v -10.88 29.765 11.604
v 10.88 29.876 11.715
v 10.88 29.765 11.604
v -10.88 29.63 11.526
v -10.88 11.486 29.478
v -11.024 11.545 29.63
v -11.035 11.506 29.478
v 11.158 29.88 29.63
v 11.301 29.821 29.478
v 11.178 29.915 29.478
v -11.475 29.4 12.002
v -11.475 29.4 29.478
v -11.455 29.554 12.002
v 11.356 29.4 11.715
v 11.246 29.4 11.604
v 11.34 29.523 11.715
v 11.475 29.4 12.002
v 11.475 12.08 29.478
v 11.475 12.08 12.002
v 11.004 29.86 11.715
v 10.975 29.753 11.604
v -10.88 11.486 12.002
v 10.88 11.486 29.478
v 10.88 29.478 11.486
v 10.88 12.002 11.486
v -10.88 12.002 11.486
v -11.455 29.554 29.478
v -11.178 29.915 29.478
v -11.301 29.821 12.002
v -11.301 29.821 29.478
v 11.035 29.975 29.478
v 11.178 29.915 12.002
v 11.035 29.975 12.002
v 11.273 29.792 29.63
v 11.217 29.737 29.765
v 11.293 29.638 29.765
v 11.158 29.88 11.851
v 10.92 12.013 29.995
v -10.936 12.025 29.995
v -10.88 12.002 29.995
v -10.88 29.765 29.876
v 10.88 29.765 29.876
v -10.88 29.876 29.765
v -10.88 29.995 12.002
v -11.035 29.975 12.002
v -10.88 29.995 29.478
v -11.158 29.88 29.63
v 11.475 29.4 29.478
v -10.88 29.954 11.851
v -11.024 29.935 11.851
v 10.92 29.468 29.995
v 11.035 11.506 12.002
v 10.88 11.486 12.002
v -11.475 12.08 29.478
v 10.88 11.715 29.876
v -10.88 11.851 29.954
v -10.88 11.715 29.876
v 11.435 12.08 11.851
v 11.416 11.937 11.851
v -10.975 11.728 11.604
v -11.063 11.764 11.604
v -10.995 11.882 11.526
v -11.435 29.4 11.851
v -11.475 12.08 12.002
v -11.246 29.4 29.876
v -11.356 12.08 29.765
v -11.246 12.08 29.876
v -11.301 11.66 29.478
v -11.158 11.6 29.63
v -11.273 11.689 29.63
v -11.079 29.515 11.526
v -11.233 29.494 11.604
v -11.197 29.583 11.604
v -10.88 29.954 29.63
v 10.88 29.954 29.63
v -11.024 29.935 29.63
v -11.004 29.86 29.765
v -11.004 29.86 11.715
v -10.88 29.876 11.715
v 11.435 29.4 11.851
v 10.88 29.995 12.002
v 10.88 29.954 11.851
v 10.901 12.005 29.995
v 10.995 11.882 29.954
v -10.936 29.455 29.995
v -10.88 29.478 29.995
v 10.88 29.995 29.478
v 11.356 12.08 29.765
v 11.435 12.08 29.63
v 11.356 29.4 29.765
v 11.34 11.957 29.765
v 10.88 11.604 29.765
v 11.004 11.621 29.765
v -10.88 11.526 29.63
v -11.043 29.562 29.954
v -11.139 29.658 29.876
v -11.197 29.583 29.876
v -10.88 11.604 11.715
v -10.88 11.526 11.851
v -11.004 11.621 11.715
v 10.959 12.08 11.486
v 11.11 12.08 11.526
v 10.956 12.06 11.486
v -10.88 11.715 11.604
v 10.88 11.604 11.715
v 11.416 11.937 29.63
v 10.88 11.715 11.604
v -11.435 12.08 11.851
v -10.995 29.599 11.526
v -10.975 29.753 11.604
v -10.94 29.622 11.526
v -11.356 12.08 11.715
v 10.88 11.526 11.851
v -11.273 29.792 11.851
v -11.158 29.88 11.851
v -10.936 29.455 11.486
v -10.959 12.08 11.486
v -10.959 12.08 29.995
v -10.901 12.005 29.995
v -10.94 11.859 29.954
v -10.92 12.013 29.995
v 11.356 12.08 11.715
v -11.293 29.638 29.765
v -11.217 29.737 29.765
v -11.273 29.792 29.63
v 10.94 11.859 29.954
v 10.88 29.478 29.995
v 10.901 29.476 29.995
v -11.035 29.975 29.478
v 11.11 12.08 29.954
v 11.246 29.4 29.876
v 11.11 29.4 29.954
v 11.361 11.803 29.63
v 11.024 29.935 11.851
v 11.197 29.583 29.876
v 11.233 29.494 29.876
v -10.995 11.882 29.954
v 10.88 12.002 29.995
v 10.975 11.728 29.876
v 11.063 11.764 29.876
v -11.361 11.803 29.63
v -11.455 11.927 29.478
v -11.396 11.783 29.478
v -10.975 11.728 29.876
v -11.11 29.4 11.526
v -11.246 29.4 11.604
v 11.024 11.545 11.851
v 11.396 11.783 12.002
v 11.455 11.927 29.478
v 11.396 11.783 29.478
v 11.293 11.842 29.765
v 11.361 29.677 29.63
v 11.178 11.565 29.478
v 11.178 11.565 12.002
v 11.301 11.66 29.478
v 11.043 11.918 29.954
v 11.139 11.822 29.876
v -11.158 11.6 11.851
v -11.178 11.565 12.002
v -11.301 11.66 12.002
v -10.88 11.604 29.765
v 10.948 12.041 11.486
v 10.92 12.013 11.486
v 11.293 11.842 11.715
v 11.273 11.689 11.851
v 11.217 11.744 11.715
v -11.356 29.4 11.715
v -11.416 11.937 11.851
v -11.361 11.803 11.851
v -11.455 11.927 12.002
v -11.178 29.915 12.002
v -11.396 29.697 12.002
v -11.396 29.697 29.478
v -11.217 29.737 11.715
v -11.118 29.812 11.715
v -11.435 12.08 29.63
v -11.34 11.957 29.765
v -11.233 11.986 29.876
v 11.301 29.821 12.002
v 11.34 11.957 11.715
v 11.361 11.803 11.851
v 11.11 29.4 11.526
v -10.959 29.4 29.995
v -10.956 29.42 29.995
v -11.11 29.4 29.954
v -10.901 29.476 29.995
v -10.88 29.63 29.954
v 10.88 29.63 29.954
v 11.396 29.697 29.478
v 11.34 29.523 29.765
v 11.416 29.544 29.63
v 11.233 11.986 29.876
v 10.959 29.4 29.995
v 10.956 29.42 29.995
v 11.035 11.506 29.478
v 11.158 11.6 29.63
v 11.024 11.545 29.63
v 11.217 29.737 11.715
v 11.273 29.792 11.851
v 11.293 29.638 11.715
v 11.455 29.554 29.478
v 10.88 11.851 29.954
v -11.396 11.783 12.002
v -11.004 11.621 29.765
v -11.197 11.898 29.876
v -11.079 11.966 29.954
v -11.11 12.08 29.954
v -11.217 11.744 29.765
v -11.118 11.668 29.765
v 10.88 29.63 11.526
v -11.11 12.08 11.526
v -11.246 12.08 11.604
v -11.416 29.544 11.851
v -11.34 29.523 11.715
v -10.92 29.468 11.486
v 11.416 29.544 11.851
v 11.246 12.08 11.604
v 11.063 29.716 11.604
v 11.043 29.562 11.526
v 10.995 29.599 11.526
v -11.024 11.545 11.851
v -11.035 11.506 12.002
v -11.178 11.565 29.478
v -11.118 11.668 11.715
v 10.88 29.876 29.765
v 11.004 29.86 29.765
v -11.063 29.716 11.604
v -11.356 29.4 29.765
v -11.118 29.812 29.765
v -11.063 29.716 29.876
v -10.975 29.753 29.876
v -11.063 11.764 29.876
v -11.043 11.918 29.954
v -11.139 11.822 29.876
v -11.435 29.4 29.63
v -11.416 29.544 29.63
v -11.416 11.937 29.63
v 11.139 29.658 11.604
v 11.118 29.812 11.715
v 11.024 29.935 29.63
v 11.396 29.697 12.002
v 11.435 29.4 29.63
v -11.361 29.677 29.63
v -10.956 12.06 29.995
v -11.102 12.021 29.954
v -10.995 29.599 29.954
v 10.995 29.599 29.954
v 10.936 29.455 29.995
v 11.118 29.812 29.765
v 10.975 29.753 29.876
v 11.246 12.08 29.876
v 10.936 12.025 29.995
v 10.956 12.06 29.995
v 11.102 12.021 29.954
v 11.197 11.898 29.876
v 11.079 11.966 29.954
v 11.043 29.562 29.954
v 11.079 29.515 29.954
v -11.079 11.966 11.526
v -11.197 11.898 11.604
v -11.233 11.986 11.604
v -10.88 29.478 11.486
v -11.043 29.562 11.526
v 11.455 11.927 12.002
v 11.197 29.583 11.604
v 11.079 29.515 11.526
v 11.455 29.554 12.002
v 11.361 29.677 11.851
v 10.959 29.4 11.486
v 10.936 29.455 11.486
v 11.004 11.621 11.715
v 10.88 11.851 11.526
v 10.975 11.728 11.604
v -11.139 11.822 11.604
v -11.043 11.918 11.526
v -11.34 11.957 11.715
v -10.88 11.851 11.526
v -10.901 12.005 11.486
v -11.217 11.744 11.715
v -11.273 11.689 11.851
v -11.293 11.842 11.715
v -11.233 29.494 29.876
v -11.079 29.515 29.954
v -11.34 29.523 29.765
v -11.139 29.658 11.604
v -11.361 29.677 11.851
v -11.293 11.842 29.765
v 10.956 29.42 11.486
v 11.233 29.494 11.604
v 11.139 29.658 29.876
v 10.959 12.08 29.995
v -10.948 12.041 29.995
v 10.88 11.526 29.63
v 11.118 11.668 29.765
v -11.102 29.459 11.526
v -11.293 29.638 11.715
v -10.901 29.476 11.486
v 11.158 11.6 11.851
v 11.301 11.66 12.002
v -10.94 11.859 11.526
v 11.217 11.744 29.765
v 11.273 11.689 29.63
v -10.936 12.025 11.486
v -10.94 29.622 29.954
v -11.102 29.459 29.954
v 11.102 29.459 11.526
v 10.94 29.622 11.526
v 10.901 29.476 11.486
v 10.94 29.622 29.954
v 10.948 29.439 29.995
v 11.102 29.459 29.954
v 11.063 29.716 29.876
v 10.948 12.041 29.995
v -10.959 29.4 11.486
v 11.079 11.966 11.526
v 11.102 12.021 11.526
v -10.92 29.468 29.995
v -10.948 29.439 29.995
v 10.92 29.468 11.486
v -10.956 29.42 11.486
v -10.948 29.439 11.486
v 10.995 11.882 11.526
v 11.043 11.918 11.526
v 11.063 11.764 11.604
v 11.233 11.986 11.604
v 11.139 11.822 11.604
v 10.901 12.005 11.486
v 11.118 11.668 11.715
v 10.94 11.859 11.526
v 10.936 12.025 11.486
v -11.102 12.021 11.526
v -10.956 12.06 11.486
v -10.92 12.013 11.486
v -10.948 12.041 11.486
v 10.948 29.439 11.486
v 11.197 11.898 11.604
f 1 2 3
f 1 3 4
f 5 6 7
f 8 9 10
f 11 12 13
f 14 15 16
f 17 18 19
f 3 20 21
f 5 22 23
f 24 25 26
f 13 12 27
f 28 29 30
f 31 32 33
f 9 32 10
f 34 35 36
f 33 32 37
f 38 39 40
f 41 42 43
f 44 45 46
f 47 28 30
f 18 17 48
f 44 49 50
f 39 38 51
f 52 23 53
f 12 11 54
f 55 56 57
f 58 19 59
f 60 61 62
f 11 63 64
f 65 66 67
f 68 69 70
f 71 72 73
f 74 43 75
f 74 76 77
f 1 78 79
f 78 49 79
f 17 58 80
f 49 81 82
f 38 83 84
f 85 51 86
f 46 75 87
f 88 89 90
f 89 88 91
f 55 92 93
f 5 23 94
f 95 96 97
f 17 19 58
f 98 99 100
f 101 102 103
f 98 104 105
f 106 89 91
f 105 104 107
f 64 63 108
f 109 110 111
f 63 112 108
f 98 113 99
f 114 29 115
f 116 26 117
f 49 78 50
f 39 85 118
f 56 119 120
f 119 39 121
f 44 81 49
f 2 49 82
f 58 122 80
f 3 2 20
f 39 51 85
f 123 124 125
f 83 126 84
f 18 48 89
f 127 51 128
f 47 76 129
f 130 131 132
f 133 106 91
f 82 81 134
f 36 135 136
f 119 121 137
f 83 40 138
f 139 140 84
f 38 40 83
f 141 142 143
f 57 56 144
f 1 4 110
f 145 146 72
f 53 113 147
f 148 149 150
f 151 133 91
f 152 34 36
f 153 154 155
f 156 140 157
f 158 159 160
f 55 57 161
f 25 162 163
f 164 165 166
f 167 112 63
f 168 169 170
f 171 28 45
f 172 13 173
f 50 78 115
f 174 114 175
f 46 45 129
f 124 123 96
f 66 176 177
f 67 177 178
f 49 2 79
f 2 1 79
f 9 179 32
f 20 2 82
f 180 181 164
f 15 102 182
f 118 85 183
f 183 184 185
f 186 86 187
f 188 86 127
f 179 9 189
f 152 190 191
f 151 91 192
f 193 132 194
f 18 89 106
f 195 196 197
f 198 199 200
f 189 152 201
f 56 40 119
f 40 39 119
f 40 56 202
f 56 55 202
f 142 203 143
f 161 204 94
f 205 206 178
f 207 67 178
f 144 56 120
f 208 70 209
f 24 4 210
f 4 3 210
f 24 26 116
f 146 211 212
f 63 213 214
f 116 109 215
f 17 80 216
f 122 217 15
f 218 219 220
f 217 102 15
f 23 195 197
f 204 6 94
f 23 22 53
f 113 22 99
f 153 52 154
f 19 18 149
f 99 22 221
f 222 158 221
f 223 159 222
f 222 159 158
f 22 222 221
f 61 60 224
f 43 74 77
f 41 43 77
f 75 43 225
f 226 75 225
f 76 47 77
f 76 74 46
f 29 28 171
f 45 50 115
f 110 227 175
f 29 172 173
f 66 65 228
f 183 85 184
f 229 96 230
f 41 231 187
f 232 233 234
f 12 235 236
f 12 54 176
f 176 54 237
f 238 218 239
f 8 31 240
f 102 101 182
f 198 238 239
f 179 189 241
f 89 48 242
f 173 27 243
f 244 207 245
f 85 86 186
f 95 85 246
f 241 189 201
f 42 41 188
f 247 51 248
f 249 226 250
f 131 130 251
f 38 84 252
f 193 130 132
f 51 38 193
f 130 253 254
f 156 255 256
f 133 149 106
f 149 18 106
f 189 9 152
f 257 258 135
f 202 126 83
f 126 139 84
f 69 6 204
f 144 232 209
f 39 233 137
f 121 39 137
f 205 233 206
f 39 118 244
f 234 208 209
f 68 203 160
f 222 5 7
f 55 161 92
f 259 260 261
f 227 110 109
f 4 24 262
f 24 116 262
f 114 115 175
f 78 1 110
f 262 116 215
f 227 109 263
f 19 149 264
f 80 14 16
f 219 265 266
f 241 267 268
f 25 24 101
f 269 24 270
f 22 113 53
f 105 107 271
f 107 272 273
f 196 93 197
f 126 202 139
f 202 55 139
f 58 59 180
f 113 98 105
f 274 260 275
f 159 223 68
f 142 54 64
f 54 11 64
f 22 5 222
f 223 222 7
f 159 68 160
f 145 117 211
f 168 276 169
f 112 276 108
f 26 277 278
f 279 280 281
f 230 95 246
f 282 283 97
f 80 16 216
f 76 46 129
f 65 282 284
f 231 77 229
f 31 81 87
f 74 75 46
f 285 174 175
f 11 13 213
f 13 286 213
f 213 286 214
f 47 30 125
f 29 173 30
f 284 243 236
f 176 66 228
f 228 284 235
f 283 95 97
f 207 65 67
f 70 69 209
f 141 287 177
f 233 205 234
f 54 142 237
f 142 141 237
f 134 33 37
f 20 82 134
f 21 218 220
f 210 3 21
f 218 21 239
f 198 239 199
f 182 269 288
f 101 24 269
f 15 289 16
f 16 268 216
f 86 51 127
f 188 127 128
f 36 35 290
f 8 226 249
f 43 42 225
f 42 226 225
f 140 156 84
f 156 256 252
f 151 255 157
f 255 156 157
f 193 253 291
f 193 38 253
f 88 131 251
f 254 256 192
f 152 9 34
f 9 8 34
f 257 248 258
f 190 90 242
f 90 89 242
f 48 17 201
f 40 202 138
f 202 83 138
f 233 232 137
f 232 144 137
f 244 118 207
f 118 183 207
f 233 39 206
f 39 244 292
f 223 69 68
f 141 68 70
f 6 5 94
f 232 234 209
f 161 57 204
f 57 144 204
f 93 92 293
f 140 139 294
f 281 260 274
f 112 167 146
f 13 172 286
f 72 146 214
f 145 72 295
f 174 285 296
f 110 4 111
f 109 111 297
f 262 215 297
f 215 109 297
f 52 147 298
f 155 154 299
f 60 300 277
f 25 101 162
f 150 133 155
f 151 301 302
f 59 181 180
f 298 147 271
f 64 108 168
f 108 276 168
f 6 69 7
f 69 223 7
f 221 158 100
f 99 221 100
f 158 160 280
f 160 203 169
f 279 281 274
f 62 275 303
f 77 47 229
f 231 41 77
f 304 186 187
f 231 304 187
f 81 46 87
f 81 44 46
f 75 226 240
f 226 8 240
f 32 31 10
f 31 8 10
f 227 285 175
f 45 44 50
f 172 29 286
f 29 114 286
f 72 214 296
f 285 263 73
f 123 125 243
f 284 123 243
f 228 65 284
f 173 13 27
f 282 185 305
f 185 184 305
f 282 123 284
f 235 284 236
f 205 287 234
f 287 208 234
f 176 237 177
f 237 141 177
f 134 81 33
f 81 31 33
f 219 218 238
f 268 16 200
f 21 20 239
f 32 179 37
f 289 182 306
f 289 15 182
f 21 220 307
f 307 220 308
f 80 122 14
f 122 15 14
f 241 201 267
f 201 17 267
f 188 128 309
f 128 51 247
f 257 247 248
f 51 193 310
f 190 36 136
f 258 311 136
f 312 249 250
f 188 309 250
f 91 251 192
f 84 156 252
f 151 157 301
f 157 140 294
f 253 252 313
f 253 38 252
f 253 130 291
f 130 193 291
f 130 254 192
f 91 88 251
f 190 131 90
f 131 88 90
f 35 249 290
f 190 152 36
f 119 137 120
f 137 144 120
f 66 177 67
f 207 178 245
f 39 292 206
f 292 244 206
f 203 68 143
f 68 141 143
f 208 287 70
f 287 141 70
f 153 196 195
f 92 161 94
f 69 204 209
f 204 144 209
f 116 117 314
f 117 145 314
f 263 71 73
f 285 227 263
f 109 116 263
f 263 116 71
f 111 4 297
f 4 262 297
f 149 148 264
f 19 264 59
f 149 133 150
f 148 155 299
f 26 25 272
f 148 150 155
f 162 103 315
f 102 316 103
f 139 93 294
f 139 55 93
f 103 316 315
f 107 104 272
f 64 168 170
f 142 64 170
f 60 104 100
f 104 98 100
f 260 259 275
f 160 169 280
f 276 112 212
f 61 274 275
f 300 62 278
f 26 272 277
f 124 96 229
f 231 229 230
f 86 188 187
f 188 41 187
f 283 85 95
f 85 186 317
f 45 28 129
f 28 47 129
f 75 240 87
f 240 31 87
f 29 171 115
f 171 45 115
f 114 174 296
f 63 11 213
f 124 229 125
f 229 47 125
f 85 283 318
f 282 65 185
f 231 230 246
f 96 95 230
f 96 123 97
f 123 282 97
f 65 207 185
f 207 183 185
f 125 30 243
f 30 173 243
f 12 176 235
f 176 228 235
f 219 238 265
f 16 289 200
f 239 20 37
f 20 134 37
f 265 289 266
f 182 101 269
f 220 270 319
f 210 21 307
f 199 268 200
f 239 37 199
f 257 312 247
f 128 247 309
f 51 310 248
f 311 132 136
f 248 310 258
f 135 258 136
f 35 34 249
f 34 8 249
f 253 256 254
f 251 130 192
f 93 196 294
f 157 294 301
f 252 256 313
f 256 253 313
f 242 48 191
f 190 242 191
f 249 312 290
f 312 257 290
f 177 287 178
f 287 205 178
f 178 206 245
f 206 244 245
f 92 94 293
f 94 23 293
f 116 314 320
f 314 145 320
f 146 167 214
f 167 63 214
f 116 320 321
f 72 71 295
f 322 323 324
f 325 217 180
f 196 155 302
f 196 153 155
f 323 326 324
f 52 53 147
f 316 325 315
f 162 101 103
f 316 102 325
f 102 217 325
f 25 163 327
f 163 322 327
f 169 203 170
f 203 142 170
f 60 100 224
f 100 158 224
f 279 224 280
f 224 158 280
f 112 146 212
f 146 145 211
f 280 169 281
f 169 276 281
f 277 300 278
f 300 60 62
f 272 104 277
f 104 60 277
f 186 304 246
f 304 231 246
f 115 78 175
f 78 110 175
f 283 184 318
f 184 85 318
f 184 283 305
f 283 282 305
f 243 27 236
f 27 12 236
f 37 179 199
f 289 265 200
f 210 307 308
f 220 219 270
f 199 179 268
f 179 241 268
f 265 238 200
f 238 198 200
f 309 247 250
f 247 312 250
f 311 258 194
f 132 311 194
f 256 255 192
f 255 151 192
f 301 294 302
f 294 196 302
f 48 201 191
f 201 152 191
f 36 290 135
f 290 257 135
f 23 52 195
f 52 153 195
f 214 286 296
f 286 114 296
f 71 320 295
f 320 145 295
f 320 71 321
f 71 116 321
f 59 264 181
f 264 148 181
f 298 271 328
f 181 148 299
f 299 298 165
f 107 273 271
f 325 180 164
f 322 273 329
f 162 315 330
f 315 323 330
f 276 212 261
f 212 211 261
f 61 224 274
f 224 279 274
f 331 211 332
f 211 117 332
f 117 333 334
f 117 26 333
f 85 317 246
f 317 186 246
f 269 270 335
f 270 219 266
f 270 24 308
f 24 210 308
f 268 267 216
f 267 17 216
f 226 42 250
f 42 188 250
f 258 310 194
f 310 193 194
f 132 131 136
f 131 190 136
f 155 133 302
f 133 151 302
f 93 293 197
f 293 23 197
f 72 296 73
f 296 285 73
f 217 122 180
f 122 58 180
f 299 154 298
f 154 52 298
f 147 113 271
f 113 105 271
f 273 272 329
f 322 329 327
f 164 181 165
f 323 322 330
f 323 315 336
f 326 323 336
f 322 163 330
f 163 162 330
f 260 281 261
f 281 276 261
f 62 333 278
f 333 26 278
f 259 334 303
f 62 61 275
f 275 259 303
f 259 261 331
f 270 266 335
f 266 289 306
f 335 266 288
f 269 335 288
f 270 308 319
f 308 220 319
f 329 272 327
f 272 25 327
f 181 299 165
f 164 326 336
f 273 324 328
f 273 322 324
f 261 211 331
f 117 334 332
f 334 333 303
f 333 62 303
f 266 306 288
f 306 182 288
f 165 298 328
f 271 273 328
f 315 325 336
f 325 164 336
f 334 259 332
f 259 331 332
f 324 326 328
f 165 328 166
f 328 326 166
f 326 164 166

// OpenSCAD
// file: def.scad
round_radius = 0.6;
sticker_margin = 1.2;
sticker_round_radius = 0.4;
cube_size = 60;
disk_height = 12.5;
disk_radius = cube_size / 2;
base_size = cube_size / 2 / sqrt(10 + 7 * sqrt(2));
cut1_dis = base_size * (1 + sqrt(2) / 2);
cut2_dis = cube_size / 2;
inf = cube_size * 10;

module _cube() {
    cube([cube_size - round_radius * 2, cube_size - round_radius * 2, cube_size - round_radius * 2], center = true);
}

module _disk() {
    translate([0, 0, cube_size / 2 + disk_height / 2])
        cylinder(r = disk_radius - round_radius, h = disk_height - round_radius * 2, center = true, $fn = 96);
}

module _int_cut1() {
    translate([-inf, -inf, cut1_dis + round_radius])
        cube([inf * 2, inf * 2, inf]);
}

module _dif_cut1() {
    translate([-inf, -inf, cut1_dis - round_radius])
        cube([inf * 2, inf * 2, inf]);
}

module _sticker_int_cut1() {
    translate([-inf, -inf, cut1_dis + sticker_margin])
        cube([inf * 2, inf * 2, inf]);
}

module _sticker_dif_cut1() {
    translate([-inf, -inf, cut1_dis - sticker_margin])
        cube([inf * 2, inf * 2, inf]);
}

module _int_cut2() {
    translate([-inf, -inf, cut2_dis + round_radius])
        cube([inf * 2, inf * 2, inf]);
}

module _dif_cut2() {
    translate([-inf, -inf, cut2_dis - round_radius])
        cube([inf * 2, inf * 2, inf]);
}

module _sticker_int_cut2() {
    translate([-inf, -inf, cut2_dis + sticker_margin])
        cube([inf * 2, inf * 2, inf]);
}

module _sticker_dif_cut2() {
    translate([-inf, -inf, cut2_dis - sticker_margin])
        cube([inf * 2, inf * 2, inf]);
}

module _sticker_cube() {
    translate([-cube_size / 2 + sticker_margin, -cube_size / 2 + sticker_margin, cube_size / 2 - 0.05])
        cube([cube_size - sticker_margin * 2, cube_size - sticker_margin * 2, 0.1]);
}

module _sticker_disk() {
    translate([0, 0, cube_size / 2 + disk_height - 0.05])
        cylinder(r = disk_radius - sticker_margin, h = 0.1, center = true, $fn = 96);
}
// main file
include <def.scad>

module block_22() {
    minkowski() {
        difference() {
            intersection() {
                _cube();
                intersection_for (deg = [0, -90])
                    rotate([deg, 0, 0])
                        _int_cut1();
            }
            for (deg = [90, -90])
                rotate([0, deg, 0])
                    _dif_cut1();
        }
        sphere(r = round_radius, $fn = 24);
    }
}

block_22();
